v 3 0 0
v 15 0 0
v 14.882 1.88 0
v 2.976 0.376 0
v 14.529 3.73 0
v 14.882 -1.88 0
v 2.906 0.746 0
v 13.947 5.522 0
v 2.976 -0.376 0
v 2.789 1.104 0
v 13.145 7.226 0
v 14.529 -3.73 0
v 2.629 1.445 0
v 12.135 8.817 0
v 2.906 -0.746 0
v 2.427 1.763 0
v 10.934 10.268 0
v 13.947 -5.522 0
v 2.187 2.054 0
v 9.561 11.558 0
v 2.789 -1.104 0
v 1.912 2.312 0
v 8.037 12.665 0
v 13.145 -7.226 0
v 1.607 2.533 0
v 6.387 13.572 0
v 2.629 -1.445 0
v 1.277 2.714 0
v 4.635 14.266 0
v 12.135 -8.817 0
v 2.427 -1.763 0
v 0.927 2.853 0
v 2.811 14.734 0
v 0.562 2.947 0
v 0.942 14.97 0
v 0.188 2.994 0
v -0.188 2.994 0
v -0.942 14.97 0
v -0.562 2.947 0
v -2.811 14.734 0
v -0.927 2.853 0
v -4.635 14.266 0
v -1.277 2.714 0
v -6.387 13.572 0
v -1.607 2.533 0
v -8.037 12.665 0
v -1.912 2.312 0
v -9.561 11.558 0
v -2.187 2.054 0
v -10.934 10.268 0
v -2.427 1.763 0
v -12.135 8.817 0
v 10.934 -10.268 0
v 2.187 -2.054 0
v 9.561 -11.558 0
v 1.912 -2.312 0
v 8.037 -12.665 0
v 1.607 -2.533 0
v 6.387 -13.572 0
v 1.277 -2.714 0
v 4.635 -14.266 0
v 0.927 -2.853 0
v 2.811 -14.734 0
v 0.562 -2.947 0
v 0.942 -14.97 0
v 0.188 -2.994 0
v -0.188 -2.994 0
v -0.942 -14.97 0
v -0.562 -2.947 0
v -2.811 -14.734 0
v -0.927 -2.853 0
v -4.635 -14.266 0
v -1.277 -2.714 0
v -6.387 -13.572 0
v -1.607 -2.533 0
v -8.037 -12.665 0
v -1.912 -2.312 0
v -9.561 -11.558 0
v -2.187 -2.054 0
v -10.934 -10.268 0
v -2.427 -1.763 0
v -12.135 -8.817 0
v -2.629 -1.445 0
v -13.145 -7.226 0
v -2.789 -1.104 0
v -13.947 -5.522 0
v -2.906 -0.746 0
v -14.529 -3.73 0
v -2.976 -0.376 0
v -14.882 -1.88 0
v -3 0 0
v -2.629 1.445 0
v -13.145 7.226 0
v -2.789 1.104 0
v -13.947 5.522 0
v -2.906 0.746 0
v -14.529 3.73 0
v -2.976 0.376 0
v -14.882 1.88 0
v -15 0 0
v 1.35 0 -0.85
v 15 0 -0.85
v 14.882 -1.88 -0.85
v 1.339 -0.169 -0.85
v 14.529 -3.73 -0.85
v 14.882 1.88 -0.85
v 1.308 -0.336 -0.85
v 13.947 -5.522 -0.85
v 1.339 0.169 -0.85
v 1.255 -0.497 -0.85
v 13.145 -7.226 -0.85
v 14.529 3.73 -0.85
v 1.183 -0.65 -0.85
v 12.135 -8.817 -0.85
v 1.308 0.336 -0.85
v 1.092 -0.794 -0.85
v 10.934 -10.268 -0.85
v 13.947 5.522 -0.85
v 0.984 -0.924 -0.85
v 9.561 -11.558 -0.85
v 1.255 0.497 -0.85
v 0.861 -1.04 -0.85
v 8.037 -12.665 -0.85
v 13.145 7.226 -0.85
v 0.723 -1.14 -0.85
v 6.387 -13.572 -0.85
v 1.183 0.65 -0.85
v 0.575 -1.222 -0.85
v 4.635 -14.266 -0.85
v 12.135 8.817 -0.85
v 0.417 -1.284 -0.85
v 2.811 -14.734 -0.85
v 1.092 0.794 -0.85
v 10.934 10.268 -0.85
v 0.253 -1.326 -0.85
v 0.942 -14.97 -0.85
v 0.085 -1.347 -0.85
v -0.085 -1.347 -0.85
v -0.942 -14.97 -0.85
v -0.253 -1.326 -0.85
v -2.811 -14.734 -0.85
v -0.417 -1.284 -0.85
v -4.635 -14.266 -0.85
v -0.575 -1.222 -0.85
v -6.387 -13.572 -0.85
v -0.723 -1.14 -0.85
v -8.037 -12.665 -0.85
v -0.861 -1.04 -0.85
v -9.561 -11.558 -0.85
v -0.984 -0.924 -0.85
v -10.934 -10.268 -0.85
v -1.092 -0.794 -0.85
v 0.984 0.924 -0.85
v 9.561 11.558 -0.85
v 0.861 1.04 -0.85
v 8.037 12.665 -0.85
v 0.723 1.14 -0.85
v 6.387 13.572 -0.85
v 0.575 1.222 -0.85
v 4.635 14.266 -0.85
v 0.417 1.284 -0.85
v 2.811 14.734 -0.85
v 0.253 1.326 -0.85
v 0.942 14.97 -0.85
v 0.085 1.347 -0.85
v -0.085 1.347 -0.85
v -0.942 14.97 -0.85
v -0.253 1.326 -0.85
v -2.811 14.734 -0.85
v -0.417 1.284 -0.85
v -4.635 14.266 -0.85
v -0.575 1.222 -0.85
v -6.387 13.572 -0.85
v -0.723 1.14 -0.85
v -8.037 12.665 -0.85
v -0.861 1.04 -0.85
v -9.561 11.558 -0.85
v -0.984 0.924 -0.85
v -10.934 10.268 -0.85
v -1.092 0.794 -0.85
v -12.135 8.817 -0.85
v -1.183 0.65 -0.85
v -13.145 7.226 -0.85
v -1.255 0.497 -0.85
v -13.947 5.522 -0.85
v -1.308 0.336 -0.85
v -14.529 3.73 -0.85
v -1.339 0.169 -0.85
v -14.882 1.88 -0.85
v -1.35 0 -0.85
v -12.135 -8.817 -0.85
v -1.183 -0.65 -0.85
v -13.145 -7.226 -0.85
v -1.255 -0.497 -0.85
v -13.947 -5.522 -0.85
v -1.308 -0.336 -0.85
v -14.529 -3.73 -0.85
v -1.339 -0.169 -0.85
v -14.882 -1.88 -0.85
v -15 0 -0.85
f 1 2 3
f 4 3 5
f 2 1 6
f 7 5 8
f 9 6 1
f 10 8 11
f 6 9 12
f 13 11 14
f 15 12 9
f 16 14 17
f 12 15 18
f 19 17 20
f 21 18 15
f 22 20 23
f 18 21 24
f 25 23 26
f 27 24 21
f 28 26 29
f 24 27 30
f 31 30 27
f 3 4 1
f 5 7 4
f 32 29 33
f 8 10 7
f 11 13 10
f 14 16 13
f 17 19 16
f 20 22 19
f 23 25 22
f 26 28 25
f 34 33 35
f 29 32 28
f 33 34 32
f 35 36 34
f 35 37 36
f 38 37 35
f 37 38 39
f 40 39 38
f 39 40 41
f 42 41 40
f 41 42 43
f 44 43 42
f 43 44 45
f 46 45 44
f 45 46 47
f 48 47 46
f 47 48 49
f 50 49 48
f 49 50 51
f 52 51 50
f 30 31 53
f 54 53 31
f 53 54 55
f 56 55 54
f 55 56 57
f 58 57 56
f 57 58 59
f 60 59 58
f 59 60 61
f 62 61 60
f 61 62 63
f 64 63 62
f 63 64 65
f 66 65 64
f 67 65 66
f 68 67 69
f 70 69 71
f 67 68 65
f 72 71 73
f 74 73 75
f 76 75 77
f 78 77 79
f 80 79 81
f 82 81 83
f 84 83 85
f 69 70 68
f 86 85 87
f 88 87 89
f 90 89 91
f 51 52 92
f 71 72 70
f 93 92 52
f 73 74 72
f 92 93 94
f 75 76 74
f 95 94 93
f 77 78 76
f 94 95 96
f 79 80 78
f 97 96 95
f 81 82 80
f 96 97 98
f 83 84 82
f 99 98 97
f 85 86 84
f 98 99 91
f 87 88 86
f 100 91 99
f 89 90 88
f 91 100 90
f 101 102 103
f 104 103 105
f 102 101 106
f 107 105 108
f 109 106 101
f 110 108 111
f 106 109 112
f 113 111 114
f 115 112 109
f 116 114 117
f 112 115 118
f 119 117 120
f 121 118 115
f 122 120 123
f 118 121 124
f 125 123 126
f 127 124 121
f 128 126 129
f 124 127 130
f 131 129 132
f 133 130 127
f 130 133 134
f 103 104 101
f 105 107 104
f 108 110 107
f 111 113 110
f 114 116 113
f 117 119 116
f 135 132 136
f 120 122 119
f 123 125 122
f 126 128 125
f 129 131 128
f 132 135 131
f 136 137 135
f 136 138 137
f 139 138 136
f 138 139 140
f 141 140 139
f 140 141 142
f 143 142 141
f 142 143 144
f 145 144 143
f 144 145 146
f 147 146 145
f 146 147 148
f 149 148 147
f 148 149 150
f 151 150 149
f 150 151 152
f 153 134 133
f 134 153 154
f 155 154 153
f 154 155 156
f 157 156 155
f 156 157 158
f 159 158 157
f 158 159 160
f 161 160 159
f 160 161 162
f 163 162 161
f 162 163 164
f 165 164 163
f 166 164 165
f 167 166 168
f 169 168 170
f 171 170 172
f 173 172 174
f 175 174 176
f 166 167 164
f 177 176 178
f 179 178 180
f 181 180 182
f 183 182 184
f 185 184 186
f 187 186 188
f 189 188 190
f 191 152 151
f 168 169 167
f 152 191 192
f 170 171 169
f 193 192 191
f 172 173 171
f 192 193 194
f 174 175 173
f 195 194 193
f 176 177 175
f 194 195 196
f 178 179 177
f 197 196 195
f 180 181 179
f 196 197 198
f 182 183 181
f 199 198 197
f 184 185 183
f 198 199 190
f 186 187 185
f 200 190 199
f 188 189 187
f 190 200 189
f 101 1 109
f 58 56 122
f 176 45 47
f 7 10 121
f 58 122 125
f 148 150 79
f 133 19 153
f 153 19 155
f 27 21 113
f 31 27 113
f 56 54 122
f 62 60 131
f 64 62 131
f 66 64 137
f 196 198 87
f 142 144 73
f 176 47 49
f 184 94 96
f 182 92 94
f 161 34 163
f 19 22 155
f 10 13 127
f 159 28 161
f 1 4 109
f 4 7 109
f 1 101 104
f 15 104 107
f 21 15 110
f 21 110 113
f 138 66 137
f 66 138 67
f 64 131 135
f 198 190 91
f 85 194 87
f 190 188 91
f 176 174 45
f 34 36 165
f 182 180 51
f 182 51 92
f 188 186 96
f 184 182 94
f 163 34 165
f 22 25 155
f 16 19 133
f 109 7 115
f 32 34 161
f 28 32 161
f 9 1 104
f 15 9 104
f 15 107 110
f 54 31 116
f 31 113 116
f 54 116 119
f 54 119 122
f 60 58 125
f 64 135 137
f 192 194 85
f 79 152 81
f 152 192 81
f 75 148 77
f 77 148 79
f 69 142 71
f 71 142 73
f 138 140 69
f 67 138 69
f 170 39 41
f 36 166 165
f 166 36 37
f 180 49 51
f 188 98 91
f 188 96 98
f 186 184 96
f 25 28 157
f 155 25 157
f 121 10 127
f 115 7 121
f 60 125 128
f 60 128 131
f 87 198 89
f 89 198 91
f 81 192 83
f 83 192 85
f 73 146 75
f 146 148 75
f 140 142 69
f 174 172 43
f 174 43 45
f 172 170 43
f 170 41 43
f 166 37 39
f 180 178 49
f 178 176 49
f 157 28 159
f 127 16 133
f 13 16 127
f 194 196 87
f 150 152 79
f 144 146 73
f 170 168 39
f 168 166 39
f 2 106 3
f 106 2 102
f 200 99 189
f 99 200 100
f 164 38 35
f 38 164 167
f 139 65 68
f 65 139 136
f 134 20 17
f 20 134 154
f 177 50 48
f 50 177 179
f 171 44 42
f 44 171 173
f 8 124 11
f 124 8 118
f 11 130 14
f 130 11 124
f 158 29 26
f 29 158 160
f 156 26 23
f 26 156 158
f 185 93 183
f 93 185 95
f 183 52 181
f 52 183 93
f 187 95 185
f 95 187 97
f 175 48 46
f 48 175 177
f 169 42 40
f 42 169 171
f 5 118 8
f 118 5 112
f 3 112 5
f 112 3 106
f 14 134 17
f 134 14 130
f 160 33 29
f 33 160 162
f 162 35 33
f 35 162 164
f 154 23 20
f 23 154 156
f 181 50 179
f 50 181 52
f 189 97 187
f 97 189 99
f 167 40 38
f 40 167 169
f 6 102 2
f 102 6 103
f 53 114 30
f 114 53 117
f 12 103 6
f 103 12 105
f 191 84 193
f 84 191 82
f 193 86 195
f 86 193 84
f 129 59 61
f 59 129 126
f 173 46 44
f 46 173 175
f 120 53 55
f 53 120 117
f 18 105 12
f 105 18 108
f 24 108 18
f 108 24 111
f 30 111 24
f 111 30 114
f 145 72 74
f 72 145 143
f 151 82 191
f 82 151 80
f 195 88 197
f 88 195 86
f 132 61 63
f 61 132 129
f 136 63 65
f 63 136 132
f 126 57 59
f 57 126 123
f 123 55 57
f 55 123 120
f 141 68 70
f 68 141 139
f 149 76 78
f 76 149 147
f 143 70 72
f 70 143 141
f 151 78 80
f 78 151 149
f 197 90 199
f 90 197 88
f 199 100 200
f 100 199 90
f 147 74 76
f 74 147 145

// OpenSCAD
$fn = 50;


difference() {
	union() {
		translate(v = [0, 0, -0.8500000000]) {
			cylinder(h = 0.8500000000, r = 15.0000000000);
		}
	}
	union() {
		translate(v = [0, 0, 0]) {
			rotate(a = [0, 0, 0]) {
				difference() {
					union() {
						translate(v = [0, 0, -0.8500000000]) {
							cylinder(h = 0.8500000000, r = 1.0000000000);
						}
						translate(v = [0, 0, -0.8500000000]) {
							cylinder(h = 0.8500000000, r1 = 1.3500000000, r2 = 3.0000000000);
						}
						translate(v = [0, 0, -0.8500000000]) {
							cylinder(h = 0.8500000000, r = 1.3500000000);
						}
						translate(v = [0, 0, -0.8500000000]) {
							cylinder(h = 0.8500000000, r = 1.0000000000);
						}
					}
					union();
				}
			}
		}
	}
}
